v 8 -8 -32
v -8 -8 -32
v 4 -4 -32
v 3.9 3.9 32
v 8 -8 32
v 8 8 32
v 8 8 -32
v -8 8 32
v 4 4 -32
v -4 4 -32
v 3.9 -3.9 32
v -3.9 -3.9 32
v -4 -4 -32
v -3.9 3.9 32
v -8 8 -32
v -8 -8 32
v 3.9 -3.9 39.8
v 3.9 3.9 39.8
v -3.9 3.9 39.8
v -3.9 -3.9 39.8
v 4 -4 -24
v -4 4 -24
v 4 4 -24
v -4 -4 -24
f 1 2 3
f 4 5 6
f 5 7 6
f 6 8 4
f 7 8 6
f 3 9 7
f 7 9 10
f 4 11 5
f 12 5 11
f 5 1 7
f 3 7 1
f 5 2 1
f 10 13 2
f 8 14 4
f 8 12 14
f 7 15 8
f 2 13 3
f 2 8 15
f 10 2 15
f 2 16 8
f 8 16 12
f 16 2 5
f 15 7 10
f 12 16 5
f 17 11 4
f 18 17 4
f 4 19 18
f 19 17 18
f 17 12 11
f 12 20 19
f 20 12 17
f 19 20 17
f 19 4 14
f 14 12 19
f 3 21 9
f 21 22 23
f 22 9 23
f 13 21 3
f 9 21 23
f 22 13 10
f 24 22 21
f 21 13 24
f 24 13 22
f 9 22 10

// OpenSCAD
// file: constants.scad
$fn = 128;

layerHeight = 0.2;

pitch = 1.25;
scale = 0.5;
slop = 0.25;
tolerance = 0.4;

blockLength = 64;
blockHeight = blockLength / 4;

tongueLength = blockHeight / 2;
tongueHeight = blockHeight / 2;

// Ring
ring = false;
ringWidth = tongueLength;
ringDepth = tongueLength;
ringHeight = blockHeight / 2;
ringThickness = 7.5 * scale;

screwDiameter = blockLength / 4;
screwHeight = blockHeight / 2;

pipeDiameter = blockLength / 2;
pipeHeight = 100;

poleLength = blockHeight;
pinLength = blockHeight / 2;
// main file
include <./constants.scad>

poleHeight = 64;
tolerance = 0.2;

difference() {
    union() {
        cube([poleLength, poleLength, poleHeight], center = true);
        translate([0, 0, (poleHeight + pinLength - tolerance) / 2]) {
            cube([pinLength - tolerance, pinLength - tolerance, pinLength - tolerance], center = true);
        }
    }
    translate([0, 0, -((poleHeight - pinLength) / 2)]) {
        cube([pinLength, pinLength, pinLength], center = true);
    }
}
